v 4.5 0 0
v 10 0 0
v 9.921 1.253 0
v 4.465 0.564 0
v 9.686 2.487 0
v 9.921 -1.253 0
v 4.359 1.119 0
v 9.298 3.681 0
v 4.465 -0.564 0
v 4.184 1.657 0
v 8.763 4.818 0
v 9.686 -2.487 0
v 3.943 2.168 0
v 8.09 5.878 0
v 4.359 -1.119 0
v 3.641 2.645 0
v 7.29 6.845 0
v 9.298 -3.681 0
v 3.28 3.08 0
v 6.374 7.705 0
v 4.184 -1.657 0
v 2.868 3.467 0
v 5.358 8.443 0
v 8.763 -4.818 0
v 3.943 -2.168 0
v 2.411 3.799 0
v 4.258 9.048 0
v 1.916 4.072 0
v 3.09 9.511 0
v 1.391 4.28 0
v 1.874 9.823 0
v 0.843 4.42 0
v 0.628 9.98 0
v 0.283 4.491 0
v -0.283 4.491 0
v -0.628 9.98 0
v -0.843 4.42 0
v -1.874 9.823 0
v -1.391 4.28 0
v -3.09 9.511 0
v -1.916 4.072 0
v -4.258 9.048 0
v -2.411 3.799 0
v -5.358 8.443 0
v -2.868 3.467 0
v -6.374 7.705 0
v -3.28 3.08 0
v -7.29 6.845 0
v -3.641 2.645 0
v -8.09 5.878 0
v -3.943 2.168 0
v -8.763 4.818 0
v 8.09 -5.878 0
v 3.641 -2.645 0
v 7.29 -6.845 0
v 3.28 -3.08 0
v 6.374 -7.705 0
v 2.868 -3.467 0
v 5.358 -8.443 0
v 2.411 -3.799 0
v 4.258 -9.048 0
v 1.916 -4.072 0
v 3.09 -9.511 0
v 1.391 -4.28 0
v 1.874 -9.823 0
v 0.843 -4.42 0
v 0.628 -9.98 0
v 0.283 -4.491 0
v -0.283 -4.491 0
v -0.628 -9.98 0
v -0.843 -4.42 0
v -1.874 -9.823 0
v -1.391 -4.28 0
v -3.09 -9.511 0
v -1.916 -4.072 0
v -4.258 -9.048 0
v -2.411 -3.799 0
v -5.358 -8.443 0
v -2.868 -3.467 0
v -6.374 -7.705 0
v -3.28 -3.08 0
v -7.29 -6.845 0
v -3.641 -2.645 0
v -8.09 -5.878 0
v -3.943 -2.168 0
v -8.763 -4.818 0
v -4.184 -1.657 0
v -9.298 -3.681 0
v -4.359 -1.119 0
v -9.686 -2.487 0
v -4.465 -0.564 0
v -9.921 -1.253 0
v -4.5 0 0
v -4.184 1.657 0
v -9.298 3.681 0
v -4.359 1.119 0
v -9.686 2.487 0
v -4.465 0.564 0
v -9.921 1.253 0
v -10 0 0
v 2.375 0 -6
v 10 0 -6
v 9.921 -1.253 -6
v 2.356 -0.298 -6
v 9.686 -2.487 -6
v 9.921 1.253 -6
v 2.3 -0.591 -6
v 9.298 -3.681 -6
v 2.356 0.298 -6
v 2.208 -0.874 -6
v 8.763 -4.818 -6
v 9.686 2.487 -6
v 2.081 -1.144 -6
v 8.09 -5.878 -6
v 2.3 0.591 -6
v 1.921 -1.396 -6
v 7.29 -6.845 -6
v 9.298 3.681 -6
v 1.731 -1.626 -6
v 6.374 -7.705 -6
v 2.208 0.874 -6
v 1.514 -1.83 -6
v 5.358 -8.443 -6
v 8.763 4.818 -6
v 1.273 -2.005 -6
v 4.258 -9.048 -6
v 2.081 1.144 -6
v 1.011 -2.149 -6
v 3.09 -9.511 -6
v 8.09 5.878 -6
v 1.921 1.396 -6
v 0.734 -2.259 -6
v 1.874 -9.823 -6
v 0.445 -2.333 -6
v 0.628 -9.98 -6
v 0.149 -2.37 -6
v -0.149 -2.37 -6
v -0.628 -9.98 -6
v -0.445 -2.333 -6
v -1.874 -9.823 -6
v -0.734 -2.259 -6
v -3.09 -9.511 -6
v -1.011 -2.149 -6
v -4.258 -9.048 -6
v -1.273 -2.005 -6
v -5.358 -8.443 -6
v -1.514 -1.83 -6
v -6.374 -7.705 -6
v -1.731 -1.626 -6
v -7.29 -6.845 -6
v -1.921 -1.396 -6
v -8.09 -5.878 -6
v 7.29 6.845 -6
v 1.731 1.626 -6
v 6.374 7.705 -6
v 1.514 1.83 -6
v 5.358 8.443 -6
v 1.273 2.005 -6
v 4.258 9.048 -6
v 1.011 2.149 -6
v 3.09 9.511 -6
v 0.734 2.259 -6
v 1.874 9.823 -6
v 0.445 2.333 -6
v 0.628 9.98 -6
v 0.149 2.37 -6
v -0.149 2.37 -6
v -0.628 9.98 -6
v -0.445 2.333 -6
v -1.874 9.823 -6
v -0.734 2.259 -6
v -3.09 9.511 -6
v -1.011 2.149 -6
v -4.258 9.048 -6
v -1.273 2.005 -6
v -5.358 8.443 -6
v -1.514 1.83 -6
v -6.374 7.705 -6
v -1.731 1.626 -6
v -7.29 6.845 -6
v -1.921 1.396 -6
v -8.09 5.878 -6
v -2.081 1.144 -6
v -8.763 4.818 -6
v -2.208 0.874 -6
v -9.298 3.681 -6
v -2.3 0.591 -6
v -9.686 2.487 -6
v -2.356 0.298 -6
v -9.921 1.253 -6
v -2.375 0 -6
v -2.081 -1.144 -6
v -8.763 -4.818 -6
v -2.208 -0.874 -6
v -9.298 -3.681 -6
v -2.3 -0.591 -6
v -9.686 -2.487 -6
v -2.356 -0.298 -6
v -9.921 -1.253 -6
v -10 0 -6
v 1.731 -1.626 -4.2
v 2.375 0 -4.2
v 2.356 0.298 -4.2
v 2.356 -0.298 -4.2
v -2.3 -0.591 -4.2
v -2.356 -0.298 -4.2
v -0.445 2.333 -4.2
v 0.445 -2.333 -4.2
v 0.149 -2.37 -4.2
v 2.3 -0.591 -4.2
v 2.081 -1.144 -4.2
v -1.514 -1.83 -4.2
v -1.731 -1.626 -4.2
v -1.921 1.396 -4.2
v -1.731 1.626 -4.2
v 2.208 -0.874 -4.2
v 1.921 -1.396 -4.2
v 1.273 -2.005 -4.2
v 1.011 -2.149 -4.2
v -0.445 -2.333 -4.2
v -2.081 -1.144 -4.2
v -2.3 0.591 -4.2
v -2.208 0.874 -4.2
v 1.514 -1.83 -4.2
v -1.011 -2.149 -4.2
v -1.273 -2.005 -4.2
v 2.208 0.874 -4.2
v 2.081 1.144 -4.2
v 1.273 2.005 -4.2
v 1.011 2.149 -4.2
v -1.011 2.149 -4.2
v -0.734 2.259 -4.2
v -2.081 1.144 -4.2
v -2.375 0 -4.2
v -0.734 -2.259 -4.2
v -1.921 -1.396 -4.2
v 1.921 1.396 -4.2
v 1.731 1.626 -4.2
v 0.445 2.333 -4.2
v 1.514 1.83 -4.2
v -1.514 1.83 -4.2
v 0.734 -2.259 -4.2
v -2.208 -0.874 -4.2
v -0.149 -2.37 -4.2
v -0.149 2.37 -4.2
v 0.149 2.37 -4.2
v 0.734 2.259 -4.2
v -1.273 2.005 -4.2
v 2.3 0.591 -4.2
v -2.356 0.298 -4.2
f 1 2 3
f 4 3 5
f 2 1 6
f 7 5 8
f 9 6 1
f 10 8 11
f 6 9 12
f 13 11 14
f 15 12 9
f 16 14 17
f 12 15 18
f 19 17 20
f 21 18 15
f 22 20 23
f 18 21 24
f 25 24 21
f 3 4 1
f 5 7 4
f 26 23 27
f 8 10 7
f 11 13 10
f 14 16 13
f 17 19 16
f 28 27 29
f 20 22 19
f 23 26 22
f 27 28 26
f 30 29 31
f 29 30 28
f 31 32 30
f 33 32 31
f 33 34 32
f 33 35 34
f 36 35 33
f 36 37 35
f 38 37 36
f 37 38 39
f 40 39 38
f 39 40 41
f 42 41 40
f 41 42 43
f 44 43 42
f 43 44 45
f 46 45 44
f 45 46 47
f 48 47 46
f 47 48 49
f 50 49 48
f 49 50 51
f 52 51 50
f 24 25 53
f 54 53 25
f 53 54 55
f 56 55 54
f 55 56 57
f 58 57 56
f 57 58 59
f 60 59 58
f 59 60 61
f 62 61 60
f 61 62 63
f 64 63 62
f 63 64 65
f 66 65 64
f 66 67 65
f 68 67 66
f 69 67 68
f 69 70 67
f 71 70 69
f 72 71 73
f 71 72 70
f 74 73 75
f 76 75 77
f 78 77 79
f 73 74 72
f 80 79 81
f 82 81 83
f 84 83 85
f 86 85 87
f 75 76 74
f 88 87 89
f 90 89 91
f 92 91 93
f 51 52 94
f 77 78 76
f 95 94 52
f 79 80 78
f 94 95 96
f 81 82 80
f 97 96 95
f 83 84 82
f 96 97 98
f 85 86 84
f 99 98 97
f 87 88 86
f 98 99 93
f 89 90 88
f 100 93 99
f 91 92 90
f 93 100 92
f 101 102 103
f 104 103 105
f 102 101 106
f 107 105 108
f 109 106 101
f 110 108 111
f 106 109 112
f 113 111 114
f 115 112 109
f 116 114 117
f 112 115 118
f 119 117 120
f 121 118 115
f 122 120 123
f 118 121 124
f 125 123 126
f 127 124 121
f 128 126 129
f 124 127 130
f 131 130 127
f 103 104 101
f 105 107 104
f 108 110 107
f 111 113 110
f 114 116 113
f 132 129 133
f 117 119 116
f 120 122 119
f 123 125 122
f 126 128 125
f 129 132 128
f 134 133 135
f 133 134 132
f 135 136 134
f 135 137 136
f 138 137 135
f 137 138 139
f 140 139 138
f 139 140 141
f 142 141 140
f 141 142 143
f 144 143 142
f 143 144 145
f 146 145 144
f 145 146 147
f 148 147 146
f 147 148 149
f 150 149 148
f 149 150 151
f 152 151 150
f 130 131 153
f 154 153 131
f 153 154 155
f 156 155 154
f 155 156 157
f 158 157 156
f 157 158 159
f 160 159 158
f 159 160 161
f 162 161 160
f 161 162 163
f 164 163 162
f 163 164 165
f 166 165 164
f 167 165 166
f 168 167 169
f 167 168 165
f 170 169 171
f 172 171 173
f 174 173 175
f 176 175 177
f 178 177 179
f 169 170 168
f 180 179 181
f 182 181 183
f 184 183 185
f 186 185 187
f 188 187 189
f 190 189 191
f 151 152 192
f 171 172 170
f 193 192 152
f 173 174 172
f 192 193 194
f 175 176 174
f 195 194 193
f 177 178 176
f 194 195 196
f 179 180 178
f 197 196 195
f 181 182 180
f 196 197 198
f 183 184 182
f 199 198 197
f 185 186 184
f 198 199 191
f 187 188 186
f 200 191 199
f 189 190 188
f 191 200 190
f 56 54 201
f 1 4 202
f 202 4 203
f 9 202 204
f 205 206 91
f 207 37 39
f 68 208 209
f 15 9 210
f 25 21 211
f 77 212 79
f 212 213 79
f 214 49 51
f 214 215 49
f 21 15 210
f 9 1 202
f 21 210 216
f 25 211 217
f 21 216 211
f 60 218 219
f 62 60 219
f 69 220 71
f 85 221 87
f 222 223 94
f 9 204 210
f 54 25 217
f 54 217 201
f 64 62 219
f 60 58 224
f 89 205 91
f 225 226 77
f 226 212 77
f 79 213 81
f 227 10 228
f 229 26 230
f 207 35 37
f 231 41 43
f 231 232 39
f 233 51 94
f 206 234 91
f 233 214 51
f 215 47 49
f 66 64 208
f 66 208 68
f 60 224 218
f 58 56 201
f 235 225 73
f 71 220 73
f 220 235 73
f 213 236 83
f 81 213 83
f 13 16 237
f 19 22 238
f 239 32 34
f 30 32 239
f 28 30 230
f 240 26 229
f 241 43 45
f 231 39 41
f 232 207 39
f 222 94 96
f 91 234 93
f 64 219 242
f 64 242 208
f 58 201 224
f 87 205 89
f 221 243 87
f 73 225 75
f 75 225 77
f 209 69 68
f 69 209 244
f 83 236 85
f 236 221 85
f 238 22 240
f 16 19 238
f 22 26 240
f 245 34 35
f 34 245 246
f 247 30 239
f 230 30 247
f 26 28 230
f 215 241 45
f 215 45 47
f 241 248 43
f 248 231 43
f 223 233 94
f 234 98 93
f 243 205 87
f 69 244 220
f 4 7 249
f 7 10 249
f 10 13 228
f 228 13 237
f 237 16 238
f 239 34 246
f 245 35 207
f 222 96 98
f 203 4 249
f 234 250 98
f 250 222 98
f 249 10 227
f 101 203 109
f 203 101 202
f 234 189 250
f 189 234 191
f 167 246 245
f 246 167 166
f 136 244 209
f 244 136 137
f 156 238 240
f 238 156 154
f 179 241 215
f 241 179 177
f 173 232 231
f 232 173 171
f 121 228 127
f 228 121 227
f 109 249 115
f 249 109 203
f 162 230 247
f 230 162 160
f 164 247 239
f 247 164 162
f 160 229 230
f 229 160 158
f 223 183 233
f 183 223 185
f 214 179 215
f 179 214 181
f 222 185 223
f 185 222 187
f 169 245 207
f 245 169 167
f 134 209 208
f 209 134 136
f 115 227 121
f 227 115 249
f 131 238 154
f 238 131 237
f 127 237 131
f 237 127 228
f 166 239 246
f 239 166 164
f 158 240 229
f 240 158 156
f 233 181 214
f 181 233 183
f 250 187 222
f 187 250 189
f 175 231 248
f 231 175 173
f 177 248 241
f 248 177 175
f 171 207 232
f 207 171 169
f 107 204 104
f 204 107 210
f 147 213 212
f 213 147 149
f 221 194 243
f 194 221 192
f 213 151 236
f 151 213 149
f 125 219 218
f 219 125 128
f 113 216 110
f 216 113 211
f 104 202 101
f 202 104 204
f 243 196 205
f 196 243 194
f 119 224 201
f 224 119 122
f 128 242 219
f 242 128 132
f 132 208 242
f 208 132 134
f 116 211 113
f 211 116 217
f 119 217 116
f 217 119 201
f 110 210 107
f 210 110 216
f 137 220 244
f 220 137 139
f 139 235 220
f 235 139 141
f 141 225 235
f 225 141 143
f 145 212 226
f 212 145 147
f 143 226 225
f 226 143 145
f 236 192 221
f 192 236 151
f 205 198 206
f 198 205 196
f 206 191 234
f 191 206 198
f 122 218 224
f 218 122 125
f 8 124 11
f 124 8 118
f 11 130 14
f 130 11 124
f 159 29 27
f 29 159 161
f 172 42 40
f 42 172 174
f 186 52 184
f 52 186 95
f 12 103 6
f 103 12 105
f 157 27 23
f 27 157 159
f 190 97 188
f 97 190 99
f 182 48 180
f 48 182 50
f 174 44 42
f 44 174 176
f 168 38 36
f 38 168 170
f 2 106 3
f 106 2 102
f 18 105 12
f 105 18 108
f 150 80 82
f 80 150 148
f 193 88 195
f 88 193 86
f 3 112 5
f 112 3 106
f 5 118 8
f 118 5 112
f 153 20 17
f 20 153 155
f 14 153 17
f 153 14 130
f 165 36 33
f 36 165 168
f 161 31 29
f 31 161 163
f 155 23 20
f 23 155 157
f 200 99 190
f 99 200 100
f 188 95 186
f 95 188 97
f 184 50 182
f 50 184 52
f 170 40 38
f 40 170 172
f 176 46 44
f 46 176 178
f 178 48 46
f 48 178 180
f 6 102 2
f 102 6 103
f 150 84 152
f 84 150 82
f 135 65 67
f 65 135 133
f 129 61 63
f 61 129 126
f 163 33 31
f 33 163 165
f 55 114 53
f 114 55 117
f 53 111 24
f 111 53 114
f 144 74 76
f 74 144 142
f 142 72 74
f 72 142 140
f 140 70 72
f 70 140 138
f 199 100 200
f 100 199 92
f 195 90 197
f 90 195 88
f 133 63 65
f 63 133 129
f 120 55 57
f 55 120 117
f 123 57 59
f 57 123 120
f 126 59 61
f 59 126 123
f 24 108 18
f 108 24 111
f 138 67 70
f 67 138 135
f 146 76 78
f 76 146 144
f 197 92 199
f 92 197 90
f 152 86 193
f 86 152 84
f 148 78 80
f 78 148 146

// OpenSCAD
$fn = 50;


difference() {
	union() {
		translate(v = [0, 0, -6.0000000000]) {
			cylinder(h = 6, r = 10.0000000000);
		}
		cylinder(h = 0, r = 20.0000000000);
	}
	union() {
		translate(v = [0, 0, 0]) {
			rotate(a = [0, 0, 0]) {
				difference() {
					union() {
						#translate(v = [0, 0, -6.0000000000]) {
							cylinder(h = 6, r = 2.2500000000);
						}
						#translate(v = [0, 0, -4.2000000000]) {
							cylinder(h = 4.2000000000, r1 = 2.3750000000, r2 = 4.5000000000);
						}
						#translate(v = [0, 0, -6.0000000000]) {
							cylinder(h = 6, r = 2.3750000000);
						}
						#translate(v = [0, 0, -6.0000000000]) {
							cylinder(h = 6, r = 2.2500000000);
						}
					}
					union();
				}
			}
		}
	}
}
